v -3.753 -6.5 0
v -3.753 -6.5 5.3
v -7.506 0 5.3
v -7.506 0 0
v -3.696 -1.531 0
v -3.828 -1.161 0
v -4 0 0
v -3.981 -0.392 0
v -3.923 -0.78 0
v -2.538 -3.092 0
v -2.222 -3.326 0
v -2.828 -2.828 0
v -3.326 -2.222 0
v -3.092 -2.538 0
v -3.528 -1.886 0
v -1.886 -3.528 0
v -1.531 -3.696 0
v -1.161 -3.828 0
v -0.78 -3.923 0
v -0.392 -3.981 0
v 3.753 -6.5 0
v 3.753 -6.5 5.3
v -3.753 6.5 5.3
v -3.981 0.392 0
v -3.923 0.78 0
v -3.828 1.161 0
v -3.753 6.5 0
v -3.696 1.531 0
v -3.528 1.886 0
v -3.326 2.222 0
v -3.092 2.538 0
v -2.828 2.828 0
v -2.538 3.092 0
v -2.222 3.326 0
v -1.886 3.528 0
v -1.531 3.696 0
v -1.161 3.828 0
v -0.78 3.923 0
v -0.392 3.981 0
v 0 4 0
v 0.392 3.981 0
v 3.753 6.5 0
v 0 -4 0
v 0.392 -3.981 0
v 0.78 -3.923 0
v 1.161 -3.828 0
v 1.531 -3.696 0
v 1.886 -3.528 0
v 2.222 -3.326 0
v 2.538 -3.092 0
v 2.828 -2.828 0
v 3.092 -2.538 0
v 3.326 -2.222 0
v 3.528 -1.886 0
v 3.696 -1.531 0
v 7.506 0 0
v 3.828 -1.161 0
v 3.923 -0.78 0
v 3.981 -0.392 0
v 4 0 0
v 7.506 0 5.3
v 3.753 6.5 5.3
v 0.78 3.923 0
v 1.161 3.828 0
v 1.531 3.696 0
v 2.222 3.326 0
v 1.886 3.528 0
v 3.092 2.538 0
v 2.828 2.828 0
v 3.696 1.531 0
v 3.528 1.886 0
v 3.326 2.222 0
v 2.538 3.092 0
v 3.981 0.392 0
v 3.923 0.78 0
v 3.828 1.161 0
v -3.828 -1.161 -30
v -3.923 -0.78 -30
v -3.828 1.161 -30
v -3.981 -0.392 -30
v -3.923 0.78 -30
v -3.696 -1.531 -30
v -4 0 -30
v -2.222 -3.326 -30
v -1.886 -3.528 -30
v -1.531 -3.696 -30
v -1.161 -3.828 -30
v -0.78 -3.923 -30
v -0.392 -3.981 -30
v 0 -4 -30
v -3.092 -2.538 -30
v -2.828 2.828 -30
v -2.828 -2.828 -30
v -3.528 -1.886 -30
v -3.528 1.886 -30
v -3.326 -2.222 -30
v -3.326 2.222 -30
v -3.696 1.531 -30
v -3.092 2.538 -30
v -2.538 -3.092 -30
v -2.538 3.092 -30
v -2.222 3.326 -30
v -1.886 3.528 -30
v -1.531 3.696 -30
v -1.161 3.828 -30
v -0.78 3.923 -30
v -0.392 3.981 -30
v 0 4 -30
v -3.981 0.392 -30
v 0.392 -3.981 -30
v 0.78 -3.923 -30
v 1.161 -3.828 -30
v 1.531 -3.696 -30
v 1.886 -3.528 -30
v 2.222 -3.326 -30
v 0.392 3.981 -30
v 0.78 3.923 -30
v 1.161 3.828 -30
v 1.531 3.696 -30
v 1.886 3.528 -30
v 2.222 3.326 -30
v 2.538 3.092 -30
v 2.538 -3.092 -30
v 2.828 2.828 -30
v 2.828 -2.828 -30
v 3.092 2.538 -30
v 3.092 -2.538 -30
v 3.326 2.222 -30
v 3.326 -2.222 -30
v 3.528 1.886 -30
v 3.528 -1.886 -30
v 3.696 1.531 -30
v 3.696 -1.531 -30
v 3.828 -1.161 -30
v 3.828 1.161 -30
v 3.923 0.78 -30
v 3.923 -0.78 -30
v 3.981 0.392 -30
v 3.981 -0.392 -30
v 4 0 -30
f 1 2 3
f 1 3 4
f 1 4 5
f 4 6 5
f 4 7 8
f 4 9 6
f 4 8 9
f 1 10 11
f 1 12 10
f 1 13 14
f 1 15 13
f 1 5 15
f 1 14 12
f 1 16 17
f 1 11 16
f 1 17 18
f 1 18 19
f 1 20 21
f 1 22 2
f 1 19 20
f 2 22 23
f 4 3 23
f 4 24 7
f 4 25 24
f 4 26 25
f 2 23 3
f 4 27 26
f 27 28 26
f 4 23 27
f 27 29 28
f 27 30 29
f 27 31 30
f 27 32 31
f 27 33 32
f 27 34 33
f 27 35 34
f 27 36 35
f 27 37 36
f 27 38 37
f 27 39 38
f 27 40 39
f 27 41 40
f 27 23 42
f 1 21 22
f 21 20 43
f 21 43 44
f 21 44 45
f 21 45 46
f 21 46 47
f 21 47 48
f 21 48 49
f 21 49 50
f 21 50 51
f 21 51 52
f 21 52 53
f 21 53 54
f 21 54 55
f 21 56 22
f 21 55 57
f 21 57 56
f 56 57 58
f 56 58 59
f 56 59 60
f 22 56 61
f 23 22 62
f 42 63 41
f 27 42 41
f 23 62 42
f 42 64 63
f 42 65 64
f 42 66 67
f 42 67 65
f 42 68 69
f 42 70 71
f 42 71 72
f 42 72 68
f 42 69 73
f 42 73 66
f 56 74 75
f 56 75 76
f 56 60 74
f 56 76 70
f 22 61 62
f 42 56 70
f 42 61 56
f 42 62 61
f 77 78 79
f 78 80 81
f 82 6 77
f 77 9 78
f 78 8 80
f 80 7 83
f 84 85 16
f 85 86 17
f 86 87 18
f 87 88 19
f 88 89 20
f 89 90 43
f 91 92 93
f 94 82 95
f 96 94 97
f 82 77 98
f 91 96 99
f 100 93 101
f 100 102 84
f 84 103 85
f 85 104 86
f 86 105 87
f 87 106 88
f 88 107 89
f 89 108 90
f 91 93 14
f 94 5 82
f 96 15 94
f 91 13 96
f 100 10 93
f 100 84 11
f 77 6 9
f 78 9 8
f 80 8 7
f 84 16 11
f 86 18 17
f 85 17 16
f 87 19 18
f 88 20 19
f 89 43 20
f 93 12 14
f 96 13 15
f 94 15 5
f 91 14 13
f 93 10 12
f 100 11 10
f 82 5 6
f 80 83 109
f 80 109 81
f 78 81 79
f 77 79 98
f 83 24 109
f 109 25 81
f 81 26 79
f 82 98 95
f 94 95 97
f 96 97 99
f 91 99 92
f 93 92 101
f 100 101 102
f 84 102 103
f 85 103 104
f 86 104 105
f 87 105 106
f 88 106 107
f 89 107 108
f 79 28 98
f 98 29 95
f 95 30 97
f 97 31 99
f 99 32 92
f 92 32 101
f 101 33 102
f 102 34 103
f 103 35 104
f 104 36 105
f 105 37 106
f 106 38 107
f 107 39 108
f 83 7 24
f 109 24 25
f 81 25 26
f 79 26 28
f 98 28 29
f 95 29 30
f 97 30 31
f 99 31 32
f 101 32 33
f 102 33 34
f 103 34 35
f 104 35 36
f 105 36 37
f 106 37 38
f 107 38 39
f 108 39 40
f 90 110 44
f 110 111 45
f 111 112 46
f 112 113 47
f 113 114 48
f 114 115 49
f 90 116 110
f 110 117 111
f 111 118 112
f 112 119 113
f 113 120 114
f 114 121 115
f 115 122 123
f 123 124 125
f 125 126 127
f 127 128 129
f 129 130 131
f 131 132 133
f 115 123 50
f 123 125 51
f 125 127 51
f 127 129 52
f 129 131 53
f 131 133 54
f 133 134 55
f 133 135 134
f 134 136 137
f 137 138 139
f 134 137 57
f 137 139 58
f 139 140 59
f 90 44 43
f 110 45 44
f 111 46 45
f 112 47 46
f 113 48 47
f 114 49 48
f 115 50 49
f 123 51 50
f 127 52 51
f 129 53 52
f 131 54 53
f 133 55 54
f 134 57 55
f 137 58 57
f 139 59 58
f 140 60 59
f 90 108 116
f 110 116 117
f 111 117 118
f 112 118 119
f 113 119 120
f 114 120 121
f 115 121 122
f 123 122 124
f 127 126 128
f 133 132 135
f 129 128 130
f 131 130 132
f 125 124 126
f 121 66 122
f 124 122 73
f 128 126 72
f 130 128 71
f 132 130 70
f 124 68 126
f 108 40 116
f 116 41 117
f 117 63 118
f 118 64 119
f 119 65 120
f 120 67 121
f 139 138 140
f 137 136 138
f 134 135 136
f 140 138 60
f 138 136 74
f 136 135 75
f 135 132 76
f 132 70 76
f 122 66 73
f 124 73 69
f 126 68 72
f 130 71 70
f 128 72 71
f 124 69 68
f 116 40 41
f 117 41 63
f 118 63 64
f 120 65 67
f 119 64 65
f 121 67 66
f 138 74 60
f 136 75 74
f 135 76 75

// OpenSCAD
// M8 hex bolt, simplified shank
$fn = 64;

module hex_bolt_m8() {
    union() {
        // Head: hexagonal prism, across-flats 13mm, height 5.3mm
        // For a hexagon, across-flats = 2 * r * cos(30°)
        // So r = AF / (2*cos(30°))
        translate([0, 0, 0])
            cylinder(h = 5.3, r = 13 / (2 * cos(30)), $fn = 6);

        // Shank: cylindrical shaft, diameter 8mm, length 30mm
        translate([0, 0, -30])
            cylinder(h = 30, d = 8);
    }
}

hex_bolt_m8();
